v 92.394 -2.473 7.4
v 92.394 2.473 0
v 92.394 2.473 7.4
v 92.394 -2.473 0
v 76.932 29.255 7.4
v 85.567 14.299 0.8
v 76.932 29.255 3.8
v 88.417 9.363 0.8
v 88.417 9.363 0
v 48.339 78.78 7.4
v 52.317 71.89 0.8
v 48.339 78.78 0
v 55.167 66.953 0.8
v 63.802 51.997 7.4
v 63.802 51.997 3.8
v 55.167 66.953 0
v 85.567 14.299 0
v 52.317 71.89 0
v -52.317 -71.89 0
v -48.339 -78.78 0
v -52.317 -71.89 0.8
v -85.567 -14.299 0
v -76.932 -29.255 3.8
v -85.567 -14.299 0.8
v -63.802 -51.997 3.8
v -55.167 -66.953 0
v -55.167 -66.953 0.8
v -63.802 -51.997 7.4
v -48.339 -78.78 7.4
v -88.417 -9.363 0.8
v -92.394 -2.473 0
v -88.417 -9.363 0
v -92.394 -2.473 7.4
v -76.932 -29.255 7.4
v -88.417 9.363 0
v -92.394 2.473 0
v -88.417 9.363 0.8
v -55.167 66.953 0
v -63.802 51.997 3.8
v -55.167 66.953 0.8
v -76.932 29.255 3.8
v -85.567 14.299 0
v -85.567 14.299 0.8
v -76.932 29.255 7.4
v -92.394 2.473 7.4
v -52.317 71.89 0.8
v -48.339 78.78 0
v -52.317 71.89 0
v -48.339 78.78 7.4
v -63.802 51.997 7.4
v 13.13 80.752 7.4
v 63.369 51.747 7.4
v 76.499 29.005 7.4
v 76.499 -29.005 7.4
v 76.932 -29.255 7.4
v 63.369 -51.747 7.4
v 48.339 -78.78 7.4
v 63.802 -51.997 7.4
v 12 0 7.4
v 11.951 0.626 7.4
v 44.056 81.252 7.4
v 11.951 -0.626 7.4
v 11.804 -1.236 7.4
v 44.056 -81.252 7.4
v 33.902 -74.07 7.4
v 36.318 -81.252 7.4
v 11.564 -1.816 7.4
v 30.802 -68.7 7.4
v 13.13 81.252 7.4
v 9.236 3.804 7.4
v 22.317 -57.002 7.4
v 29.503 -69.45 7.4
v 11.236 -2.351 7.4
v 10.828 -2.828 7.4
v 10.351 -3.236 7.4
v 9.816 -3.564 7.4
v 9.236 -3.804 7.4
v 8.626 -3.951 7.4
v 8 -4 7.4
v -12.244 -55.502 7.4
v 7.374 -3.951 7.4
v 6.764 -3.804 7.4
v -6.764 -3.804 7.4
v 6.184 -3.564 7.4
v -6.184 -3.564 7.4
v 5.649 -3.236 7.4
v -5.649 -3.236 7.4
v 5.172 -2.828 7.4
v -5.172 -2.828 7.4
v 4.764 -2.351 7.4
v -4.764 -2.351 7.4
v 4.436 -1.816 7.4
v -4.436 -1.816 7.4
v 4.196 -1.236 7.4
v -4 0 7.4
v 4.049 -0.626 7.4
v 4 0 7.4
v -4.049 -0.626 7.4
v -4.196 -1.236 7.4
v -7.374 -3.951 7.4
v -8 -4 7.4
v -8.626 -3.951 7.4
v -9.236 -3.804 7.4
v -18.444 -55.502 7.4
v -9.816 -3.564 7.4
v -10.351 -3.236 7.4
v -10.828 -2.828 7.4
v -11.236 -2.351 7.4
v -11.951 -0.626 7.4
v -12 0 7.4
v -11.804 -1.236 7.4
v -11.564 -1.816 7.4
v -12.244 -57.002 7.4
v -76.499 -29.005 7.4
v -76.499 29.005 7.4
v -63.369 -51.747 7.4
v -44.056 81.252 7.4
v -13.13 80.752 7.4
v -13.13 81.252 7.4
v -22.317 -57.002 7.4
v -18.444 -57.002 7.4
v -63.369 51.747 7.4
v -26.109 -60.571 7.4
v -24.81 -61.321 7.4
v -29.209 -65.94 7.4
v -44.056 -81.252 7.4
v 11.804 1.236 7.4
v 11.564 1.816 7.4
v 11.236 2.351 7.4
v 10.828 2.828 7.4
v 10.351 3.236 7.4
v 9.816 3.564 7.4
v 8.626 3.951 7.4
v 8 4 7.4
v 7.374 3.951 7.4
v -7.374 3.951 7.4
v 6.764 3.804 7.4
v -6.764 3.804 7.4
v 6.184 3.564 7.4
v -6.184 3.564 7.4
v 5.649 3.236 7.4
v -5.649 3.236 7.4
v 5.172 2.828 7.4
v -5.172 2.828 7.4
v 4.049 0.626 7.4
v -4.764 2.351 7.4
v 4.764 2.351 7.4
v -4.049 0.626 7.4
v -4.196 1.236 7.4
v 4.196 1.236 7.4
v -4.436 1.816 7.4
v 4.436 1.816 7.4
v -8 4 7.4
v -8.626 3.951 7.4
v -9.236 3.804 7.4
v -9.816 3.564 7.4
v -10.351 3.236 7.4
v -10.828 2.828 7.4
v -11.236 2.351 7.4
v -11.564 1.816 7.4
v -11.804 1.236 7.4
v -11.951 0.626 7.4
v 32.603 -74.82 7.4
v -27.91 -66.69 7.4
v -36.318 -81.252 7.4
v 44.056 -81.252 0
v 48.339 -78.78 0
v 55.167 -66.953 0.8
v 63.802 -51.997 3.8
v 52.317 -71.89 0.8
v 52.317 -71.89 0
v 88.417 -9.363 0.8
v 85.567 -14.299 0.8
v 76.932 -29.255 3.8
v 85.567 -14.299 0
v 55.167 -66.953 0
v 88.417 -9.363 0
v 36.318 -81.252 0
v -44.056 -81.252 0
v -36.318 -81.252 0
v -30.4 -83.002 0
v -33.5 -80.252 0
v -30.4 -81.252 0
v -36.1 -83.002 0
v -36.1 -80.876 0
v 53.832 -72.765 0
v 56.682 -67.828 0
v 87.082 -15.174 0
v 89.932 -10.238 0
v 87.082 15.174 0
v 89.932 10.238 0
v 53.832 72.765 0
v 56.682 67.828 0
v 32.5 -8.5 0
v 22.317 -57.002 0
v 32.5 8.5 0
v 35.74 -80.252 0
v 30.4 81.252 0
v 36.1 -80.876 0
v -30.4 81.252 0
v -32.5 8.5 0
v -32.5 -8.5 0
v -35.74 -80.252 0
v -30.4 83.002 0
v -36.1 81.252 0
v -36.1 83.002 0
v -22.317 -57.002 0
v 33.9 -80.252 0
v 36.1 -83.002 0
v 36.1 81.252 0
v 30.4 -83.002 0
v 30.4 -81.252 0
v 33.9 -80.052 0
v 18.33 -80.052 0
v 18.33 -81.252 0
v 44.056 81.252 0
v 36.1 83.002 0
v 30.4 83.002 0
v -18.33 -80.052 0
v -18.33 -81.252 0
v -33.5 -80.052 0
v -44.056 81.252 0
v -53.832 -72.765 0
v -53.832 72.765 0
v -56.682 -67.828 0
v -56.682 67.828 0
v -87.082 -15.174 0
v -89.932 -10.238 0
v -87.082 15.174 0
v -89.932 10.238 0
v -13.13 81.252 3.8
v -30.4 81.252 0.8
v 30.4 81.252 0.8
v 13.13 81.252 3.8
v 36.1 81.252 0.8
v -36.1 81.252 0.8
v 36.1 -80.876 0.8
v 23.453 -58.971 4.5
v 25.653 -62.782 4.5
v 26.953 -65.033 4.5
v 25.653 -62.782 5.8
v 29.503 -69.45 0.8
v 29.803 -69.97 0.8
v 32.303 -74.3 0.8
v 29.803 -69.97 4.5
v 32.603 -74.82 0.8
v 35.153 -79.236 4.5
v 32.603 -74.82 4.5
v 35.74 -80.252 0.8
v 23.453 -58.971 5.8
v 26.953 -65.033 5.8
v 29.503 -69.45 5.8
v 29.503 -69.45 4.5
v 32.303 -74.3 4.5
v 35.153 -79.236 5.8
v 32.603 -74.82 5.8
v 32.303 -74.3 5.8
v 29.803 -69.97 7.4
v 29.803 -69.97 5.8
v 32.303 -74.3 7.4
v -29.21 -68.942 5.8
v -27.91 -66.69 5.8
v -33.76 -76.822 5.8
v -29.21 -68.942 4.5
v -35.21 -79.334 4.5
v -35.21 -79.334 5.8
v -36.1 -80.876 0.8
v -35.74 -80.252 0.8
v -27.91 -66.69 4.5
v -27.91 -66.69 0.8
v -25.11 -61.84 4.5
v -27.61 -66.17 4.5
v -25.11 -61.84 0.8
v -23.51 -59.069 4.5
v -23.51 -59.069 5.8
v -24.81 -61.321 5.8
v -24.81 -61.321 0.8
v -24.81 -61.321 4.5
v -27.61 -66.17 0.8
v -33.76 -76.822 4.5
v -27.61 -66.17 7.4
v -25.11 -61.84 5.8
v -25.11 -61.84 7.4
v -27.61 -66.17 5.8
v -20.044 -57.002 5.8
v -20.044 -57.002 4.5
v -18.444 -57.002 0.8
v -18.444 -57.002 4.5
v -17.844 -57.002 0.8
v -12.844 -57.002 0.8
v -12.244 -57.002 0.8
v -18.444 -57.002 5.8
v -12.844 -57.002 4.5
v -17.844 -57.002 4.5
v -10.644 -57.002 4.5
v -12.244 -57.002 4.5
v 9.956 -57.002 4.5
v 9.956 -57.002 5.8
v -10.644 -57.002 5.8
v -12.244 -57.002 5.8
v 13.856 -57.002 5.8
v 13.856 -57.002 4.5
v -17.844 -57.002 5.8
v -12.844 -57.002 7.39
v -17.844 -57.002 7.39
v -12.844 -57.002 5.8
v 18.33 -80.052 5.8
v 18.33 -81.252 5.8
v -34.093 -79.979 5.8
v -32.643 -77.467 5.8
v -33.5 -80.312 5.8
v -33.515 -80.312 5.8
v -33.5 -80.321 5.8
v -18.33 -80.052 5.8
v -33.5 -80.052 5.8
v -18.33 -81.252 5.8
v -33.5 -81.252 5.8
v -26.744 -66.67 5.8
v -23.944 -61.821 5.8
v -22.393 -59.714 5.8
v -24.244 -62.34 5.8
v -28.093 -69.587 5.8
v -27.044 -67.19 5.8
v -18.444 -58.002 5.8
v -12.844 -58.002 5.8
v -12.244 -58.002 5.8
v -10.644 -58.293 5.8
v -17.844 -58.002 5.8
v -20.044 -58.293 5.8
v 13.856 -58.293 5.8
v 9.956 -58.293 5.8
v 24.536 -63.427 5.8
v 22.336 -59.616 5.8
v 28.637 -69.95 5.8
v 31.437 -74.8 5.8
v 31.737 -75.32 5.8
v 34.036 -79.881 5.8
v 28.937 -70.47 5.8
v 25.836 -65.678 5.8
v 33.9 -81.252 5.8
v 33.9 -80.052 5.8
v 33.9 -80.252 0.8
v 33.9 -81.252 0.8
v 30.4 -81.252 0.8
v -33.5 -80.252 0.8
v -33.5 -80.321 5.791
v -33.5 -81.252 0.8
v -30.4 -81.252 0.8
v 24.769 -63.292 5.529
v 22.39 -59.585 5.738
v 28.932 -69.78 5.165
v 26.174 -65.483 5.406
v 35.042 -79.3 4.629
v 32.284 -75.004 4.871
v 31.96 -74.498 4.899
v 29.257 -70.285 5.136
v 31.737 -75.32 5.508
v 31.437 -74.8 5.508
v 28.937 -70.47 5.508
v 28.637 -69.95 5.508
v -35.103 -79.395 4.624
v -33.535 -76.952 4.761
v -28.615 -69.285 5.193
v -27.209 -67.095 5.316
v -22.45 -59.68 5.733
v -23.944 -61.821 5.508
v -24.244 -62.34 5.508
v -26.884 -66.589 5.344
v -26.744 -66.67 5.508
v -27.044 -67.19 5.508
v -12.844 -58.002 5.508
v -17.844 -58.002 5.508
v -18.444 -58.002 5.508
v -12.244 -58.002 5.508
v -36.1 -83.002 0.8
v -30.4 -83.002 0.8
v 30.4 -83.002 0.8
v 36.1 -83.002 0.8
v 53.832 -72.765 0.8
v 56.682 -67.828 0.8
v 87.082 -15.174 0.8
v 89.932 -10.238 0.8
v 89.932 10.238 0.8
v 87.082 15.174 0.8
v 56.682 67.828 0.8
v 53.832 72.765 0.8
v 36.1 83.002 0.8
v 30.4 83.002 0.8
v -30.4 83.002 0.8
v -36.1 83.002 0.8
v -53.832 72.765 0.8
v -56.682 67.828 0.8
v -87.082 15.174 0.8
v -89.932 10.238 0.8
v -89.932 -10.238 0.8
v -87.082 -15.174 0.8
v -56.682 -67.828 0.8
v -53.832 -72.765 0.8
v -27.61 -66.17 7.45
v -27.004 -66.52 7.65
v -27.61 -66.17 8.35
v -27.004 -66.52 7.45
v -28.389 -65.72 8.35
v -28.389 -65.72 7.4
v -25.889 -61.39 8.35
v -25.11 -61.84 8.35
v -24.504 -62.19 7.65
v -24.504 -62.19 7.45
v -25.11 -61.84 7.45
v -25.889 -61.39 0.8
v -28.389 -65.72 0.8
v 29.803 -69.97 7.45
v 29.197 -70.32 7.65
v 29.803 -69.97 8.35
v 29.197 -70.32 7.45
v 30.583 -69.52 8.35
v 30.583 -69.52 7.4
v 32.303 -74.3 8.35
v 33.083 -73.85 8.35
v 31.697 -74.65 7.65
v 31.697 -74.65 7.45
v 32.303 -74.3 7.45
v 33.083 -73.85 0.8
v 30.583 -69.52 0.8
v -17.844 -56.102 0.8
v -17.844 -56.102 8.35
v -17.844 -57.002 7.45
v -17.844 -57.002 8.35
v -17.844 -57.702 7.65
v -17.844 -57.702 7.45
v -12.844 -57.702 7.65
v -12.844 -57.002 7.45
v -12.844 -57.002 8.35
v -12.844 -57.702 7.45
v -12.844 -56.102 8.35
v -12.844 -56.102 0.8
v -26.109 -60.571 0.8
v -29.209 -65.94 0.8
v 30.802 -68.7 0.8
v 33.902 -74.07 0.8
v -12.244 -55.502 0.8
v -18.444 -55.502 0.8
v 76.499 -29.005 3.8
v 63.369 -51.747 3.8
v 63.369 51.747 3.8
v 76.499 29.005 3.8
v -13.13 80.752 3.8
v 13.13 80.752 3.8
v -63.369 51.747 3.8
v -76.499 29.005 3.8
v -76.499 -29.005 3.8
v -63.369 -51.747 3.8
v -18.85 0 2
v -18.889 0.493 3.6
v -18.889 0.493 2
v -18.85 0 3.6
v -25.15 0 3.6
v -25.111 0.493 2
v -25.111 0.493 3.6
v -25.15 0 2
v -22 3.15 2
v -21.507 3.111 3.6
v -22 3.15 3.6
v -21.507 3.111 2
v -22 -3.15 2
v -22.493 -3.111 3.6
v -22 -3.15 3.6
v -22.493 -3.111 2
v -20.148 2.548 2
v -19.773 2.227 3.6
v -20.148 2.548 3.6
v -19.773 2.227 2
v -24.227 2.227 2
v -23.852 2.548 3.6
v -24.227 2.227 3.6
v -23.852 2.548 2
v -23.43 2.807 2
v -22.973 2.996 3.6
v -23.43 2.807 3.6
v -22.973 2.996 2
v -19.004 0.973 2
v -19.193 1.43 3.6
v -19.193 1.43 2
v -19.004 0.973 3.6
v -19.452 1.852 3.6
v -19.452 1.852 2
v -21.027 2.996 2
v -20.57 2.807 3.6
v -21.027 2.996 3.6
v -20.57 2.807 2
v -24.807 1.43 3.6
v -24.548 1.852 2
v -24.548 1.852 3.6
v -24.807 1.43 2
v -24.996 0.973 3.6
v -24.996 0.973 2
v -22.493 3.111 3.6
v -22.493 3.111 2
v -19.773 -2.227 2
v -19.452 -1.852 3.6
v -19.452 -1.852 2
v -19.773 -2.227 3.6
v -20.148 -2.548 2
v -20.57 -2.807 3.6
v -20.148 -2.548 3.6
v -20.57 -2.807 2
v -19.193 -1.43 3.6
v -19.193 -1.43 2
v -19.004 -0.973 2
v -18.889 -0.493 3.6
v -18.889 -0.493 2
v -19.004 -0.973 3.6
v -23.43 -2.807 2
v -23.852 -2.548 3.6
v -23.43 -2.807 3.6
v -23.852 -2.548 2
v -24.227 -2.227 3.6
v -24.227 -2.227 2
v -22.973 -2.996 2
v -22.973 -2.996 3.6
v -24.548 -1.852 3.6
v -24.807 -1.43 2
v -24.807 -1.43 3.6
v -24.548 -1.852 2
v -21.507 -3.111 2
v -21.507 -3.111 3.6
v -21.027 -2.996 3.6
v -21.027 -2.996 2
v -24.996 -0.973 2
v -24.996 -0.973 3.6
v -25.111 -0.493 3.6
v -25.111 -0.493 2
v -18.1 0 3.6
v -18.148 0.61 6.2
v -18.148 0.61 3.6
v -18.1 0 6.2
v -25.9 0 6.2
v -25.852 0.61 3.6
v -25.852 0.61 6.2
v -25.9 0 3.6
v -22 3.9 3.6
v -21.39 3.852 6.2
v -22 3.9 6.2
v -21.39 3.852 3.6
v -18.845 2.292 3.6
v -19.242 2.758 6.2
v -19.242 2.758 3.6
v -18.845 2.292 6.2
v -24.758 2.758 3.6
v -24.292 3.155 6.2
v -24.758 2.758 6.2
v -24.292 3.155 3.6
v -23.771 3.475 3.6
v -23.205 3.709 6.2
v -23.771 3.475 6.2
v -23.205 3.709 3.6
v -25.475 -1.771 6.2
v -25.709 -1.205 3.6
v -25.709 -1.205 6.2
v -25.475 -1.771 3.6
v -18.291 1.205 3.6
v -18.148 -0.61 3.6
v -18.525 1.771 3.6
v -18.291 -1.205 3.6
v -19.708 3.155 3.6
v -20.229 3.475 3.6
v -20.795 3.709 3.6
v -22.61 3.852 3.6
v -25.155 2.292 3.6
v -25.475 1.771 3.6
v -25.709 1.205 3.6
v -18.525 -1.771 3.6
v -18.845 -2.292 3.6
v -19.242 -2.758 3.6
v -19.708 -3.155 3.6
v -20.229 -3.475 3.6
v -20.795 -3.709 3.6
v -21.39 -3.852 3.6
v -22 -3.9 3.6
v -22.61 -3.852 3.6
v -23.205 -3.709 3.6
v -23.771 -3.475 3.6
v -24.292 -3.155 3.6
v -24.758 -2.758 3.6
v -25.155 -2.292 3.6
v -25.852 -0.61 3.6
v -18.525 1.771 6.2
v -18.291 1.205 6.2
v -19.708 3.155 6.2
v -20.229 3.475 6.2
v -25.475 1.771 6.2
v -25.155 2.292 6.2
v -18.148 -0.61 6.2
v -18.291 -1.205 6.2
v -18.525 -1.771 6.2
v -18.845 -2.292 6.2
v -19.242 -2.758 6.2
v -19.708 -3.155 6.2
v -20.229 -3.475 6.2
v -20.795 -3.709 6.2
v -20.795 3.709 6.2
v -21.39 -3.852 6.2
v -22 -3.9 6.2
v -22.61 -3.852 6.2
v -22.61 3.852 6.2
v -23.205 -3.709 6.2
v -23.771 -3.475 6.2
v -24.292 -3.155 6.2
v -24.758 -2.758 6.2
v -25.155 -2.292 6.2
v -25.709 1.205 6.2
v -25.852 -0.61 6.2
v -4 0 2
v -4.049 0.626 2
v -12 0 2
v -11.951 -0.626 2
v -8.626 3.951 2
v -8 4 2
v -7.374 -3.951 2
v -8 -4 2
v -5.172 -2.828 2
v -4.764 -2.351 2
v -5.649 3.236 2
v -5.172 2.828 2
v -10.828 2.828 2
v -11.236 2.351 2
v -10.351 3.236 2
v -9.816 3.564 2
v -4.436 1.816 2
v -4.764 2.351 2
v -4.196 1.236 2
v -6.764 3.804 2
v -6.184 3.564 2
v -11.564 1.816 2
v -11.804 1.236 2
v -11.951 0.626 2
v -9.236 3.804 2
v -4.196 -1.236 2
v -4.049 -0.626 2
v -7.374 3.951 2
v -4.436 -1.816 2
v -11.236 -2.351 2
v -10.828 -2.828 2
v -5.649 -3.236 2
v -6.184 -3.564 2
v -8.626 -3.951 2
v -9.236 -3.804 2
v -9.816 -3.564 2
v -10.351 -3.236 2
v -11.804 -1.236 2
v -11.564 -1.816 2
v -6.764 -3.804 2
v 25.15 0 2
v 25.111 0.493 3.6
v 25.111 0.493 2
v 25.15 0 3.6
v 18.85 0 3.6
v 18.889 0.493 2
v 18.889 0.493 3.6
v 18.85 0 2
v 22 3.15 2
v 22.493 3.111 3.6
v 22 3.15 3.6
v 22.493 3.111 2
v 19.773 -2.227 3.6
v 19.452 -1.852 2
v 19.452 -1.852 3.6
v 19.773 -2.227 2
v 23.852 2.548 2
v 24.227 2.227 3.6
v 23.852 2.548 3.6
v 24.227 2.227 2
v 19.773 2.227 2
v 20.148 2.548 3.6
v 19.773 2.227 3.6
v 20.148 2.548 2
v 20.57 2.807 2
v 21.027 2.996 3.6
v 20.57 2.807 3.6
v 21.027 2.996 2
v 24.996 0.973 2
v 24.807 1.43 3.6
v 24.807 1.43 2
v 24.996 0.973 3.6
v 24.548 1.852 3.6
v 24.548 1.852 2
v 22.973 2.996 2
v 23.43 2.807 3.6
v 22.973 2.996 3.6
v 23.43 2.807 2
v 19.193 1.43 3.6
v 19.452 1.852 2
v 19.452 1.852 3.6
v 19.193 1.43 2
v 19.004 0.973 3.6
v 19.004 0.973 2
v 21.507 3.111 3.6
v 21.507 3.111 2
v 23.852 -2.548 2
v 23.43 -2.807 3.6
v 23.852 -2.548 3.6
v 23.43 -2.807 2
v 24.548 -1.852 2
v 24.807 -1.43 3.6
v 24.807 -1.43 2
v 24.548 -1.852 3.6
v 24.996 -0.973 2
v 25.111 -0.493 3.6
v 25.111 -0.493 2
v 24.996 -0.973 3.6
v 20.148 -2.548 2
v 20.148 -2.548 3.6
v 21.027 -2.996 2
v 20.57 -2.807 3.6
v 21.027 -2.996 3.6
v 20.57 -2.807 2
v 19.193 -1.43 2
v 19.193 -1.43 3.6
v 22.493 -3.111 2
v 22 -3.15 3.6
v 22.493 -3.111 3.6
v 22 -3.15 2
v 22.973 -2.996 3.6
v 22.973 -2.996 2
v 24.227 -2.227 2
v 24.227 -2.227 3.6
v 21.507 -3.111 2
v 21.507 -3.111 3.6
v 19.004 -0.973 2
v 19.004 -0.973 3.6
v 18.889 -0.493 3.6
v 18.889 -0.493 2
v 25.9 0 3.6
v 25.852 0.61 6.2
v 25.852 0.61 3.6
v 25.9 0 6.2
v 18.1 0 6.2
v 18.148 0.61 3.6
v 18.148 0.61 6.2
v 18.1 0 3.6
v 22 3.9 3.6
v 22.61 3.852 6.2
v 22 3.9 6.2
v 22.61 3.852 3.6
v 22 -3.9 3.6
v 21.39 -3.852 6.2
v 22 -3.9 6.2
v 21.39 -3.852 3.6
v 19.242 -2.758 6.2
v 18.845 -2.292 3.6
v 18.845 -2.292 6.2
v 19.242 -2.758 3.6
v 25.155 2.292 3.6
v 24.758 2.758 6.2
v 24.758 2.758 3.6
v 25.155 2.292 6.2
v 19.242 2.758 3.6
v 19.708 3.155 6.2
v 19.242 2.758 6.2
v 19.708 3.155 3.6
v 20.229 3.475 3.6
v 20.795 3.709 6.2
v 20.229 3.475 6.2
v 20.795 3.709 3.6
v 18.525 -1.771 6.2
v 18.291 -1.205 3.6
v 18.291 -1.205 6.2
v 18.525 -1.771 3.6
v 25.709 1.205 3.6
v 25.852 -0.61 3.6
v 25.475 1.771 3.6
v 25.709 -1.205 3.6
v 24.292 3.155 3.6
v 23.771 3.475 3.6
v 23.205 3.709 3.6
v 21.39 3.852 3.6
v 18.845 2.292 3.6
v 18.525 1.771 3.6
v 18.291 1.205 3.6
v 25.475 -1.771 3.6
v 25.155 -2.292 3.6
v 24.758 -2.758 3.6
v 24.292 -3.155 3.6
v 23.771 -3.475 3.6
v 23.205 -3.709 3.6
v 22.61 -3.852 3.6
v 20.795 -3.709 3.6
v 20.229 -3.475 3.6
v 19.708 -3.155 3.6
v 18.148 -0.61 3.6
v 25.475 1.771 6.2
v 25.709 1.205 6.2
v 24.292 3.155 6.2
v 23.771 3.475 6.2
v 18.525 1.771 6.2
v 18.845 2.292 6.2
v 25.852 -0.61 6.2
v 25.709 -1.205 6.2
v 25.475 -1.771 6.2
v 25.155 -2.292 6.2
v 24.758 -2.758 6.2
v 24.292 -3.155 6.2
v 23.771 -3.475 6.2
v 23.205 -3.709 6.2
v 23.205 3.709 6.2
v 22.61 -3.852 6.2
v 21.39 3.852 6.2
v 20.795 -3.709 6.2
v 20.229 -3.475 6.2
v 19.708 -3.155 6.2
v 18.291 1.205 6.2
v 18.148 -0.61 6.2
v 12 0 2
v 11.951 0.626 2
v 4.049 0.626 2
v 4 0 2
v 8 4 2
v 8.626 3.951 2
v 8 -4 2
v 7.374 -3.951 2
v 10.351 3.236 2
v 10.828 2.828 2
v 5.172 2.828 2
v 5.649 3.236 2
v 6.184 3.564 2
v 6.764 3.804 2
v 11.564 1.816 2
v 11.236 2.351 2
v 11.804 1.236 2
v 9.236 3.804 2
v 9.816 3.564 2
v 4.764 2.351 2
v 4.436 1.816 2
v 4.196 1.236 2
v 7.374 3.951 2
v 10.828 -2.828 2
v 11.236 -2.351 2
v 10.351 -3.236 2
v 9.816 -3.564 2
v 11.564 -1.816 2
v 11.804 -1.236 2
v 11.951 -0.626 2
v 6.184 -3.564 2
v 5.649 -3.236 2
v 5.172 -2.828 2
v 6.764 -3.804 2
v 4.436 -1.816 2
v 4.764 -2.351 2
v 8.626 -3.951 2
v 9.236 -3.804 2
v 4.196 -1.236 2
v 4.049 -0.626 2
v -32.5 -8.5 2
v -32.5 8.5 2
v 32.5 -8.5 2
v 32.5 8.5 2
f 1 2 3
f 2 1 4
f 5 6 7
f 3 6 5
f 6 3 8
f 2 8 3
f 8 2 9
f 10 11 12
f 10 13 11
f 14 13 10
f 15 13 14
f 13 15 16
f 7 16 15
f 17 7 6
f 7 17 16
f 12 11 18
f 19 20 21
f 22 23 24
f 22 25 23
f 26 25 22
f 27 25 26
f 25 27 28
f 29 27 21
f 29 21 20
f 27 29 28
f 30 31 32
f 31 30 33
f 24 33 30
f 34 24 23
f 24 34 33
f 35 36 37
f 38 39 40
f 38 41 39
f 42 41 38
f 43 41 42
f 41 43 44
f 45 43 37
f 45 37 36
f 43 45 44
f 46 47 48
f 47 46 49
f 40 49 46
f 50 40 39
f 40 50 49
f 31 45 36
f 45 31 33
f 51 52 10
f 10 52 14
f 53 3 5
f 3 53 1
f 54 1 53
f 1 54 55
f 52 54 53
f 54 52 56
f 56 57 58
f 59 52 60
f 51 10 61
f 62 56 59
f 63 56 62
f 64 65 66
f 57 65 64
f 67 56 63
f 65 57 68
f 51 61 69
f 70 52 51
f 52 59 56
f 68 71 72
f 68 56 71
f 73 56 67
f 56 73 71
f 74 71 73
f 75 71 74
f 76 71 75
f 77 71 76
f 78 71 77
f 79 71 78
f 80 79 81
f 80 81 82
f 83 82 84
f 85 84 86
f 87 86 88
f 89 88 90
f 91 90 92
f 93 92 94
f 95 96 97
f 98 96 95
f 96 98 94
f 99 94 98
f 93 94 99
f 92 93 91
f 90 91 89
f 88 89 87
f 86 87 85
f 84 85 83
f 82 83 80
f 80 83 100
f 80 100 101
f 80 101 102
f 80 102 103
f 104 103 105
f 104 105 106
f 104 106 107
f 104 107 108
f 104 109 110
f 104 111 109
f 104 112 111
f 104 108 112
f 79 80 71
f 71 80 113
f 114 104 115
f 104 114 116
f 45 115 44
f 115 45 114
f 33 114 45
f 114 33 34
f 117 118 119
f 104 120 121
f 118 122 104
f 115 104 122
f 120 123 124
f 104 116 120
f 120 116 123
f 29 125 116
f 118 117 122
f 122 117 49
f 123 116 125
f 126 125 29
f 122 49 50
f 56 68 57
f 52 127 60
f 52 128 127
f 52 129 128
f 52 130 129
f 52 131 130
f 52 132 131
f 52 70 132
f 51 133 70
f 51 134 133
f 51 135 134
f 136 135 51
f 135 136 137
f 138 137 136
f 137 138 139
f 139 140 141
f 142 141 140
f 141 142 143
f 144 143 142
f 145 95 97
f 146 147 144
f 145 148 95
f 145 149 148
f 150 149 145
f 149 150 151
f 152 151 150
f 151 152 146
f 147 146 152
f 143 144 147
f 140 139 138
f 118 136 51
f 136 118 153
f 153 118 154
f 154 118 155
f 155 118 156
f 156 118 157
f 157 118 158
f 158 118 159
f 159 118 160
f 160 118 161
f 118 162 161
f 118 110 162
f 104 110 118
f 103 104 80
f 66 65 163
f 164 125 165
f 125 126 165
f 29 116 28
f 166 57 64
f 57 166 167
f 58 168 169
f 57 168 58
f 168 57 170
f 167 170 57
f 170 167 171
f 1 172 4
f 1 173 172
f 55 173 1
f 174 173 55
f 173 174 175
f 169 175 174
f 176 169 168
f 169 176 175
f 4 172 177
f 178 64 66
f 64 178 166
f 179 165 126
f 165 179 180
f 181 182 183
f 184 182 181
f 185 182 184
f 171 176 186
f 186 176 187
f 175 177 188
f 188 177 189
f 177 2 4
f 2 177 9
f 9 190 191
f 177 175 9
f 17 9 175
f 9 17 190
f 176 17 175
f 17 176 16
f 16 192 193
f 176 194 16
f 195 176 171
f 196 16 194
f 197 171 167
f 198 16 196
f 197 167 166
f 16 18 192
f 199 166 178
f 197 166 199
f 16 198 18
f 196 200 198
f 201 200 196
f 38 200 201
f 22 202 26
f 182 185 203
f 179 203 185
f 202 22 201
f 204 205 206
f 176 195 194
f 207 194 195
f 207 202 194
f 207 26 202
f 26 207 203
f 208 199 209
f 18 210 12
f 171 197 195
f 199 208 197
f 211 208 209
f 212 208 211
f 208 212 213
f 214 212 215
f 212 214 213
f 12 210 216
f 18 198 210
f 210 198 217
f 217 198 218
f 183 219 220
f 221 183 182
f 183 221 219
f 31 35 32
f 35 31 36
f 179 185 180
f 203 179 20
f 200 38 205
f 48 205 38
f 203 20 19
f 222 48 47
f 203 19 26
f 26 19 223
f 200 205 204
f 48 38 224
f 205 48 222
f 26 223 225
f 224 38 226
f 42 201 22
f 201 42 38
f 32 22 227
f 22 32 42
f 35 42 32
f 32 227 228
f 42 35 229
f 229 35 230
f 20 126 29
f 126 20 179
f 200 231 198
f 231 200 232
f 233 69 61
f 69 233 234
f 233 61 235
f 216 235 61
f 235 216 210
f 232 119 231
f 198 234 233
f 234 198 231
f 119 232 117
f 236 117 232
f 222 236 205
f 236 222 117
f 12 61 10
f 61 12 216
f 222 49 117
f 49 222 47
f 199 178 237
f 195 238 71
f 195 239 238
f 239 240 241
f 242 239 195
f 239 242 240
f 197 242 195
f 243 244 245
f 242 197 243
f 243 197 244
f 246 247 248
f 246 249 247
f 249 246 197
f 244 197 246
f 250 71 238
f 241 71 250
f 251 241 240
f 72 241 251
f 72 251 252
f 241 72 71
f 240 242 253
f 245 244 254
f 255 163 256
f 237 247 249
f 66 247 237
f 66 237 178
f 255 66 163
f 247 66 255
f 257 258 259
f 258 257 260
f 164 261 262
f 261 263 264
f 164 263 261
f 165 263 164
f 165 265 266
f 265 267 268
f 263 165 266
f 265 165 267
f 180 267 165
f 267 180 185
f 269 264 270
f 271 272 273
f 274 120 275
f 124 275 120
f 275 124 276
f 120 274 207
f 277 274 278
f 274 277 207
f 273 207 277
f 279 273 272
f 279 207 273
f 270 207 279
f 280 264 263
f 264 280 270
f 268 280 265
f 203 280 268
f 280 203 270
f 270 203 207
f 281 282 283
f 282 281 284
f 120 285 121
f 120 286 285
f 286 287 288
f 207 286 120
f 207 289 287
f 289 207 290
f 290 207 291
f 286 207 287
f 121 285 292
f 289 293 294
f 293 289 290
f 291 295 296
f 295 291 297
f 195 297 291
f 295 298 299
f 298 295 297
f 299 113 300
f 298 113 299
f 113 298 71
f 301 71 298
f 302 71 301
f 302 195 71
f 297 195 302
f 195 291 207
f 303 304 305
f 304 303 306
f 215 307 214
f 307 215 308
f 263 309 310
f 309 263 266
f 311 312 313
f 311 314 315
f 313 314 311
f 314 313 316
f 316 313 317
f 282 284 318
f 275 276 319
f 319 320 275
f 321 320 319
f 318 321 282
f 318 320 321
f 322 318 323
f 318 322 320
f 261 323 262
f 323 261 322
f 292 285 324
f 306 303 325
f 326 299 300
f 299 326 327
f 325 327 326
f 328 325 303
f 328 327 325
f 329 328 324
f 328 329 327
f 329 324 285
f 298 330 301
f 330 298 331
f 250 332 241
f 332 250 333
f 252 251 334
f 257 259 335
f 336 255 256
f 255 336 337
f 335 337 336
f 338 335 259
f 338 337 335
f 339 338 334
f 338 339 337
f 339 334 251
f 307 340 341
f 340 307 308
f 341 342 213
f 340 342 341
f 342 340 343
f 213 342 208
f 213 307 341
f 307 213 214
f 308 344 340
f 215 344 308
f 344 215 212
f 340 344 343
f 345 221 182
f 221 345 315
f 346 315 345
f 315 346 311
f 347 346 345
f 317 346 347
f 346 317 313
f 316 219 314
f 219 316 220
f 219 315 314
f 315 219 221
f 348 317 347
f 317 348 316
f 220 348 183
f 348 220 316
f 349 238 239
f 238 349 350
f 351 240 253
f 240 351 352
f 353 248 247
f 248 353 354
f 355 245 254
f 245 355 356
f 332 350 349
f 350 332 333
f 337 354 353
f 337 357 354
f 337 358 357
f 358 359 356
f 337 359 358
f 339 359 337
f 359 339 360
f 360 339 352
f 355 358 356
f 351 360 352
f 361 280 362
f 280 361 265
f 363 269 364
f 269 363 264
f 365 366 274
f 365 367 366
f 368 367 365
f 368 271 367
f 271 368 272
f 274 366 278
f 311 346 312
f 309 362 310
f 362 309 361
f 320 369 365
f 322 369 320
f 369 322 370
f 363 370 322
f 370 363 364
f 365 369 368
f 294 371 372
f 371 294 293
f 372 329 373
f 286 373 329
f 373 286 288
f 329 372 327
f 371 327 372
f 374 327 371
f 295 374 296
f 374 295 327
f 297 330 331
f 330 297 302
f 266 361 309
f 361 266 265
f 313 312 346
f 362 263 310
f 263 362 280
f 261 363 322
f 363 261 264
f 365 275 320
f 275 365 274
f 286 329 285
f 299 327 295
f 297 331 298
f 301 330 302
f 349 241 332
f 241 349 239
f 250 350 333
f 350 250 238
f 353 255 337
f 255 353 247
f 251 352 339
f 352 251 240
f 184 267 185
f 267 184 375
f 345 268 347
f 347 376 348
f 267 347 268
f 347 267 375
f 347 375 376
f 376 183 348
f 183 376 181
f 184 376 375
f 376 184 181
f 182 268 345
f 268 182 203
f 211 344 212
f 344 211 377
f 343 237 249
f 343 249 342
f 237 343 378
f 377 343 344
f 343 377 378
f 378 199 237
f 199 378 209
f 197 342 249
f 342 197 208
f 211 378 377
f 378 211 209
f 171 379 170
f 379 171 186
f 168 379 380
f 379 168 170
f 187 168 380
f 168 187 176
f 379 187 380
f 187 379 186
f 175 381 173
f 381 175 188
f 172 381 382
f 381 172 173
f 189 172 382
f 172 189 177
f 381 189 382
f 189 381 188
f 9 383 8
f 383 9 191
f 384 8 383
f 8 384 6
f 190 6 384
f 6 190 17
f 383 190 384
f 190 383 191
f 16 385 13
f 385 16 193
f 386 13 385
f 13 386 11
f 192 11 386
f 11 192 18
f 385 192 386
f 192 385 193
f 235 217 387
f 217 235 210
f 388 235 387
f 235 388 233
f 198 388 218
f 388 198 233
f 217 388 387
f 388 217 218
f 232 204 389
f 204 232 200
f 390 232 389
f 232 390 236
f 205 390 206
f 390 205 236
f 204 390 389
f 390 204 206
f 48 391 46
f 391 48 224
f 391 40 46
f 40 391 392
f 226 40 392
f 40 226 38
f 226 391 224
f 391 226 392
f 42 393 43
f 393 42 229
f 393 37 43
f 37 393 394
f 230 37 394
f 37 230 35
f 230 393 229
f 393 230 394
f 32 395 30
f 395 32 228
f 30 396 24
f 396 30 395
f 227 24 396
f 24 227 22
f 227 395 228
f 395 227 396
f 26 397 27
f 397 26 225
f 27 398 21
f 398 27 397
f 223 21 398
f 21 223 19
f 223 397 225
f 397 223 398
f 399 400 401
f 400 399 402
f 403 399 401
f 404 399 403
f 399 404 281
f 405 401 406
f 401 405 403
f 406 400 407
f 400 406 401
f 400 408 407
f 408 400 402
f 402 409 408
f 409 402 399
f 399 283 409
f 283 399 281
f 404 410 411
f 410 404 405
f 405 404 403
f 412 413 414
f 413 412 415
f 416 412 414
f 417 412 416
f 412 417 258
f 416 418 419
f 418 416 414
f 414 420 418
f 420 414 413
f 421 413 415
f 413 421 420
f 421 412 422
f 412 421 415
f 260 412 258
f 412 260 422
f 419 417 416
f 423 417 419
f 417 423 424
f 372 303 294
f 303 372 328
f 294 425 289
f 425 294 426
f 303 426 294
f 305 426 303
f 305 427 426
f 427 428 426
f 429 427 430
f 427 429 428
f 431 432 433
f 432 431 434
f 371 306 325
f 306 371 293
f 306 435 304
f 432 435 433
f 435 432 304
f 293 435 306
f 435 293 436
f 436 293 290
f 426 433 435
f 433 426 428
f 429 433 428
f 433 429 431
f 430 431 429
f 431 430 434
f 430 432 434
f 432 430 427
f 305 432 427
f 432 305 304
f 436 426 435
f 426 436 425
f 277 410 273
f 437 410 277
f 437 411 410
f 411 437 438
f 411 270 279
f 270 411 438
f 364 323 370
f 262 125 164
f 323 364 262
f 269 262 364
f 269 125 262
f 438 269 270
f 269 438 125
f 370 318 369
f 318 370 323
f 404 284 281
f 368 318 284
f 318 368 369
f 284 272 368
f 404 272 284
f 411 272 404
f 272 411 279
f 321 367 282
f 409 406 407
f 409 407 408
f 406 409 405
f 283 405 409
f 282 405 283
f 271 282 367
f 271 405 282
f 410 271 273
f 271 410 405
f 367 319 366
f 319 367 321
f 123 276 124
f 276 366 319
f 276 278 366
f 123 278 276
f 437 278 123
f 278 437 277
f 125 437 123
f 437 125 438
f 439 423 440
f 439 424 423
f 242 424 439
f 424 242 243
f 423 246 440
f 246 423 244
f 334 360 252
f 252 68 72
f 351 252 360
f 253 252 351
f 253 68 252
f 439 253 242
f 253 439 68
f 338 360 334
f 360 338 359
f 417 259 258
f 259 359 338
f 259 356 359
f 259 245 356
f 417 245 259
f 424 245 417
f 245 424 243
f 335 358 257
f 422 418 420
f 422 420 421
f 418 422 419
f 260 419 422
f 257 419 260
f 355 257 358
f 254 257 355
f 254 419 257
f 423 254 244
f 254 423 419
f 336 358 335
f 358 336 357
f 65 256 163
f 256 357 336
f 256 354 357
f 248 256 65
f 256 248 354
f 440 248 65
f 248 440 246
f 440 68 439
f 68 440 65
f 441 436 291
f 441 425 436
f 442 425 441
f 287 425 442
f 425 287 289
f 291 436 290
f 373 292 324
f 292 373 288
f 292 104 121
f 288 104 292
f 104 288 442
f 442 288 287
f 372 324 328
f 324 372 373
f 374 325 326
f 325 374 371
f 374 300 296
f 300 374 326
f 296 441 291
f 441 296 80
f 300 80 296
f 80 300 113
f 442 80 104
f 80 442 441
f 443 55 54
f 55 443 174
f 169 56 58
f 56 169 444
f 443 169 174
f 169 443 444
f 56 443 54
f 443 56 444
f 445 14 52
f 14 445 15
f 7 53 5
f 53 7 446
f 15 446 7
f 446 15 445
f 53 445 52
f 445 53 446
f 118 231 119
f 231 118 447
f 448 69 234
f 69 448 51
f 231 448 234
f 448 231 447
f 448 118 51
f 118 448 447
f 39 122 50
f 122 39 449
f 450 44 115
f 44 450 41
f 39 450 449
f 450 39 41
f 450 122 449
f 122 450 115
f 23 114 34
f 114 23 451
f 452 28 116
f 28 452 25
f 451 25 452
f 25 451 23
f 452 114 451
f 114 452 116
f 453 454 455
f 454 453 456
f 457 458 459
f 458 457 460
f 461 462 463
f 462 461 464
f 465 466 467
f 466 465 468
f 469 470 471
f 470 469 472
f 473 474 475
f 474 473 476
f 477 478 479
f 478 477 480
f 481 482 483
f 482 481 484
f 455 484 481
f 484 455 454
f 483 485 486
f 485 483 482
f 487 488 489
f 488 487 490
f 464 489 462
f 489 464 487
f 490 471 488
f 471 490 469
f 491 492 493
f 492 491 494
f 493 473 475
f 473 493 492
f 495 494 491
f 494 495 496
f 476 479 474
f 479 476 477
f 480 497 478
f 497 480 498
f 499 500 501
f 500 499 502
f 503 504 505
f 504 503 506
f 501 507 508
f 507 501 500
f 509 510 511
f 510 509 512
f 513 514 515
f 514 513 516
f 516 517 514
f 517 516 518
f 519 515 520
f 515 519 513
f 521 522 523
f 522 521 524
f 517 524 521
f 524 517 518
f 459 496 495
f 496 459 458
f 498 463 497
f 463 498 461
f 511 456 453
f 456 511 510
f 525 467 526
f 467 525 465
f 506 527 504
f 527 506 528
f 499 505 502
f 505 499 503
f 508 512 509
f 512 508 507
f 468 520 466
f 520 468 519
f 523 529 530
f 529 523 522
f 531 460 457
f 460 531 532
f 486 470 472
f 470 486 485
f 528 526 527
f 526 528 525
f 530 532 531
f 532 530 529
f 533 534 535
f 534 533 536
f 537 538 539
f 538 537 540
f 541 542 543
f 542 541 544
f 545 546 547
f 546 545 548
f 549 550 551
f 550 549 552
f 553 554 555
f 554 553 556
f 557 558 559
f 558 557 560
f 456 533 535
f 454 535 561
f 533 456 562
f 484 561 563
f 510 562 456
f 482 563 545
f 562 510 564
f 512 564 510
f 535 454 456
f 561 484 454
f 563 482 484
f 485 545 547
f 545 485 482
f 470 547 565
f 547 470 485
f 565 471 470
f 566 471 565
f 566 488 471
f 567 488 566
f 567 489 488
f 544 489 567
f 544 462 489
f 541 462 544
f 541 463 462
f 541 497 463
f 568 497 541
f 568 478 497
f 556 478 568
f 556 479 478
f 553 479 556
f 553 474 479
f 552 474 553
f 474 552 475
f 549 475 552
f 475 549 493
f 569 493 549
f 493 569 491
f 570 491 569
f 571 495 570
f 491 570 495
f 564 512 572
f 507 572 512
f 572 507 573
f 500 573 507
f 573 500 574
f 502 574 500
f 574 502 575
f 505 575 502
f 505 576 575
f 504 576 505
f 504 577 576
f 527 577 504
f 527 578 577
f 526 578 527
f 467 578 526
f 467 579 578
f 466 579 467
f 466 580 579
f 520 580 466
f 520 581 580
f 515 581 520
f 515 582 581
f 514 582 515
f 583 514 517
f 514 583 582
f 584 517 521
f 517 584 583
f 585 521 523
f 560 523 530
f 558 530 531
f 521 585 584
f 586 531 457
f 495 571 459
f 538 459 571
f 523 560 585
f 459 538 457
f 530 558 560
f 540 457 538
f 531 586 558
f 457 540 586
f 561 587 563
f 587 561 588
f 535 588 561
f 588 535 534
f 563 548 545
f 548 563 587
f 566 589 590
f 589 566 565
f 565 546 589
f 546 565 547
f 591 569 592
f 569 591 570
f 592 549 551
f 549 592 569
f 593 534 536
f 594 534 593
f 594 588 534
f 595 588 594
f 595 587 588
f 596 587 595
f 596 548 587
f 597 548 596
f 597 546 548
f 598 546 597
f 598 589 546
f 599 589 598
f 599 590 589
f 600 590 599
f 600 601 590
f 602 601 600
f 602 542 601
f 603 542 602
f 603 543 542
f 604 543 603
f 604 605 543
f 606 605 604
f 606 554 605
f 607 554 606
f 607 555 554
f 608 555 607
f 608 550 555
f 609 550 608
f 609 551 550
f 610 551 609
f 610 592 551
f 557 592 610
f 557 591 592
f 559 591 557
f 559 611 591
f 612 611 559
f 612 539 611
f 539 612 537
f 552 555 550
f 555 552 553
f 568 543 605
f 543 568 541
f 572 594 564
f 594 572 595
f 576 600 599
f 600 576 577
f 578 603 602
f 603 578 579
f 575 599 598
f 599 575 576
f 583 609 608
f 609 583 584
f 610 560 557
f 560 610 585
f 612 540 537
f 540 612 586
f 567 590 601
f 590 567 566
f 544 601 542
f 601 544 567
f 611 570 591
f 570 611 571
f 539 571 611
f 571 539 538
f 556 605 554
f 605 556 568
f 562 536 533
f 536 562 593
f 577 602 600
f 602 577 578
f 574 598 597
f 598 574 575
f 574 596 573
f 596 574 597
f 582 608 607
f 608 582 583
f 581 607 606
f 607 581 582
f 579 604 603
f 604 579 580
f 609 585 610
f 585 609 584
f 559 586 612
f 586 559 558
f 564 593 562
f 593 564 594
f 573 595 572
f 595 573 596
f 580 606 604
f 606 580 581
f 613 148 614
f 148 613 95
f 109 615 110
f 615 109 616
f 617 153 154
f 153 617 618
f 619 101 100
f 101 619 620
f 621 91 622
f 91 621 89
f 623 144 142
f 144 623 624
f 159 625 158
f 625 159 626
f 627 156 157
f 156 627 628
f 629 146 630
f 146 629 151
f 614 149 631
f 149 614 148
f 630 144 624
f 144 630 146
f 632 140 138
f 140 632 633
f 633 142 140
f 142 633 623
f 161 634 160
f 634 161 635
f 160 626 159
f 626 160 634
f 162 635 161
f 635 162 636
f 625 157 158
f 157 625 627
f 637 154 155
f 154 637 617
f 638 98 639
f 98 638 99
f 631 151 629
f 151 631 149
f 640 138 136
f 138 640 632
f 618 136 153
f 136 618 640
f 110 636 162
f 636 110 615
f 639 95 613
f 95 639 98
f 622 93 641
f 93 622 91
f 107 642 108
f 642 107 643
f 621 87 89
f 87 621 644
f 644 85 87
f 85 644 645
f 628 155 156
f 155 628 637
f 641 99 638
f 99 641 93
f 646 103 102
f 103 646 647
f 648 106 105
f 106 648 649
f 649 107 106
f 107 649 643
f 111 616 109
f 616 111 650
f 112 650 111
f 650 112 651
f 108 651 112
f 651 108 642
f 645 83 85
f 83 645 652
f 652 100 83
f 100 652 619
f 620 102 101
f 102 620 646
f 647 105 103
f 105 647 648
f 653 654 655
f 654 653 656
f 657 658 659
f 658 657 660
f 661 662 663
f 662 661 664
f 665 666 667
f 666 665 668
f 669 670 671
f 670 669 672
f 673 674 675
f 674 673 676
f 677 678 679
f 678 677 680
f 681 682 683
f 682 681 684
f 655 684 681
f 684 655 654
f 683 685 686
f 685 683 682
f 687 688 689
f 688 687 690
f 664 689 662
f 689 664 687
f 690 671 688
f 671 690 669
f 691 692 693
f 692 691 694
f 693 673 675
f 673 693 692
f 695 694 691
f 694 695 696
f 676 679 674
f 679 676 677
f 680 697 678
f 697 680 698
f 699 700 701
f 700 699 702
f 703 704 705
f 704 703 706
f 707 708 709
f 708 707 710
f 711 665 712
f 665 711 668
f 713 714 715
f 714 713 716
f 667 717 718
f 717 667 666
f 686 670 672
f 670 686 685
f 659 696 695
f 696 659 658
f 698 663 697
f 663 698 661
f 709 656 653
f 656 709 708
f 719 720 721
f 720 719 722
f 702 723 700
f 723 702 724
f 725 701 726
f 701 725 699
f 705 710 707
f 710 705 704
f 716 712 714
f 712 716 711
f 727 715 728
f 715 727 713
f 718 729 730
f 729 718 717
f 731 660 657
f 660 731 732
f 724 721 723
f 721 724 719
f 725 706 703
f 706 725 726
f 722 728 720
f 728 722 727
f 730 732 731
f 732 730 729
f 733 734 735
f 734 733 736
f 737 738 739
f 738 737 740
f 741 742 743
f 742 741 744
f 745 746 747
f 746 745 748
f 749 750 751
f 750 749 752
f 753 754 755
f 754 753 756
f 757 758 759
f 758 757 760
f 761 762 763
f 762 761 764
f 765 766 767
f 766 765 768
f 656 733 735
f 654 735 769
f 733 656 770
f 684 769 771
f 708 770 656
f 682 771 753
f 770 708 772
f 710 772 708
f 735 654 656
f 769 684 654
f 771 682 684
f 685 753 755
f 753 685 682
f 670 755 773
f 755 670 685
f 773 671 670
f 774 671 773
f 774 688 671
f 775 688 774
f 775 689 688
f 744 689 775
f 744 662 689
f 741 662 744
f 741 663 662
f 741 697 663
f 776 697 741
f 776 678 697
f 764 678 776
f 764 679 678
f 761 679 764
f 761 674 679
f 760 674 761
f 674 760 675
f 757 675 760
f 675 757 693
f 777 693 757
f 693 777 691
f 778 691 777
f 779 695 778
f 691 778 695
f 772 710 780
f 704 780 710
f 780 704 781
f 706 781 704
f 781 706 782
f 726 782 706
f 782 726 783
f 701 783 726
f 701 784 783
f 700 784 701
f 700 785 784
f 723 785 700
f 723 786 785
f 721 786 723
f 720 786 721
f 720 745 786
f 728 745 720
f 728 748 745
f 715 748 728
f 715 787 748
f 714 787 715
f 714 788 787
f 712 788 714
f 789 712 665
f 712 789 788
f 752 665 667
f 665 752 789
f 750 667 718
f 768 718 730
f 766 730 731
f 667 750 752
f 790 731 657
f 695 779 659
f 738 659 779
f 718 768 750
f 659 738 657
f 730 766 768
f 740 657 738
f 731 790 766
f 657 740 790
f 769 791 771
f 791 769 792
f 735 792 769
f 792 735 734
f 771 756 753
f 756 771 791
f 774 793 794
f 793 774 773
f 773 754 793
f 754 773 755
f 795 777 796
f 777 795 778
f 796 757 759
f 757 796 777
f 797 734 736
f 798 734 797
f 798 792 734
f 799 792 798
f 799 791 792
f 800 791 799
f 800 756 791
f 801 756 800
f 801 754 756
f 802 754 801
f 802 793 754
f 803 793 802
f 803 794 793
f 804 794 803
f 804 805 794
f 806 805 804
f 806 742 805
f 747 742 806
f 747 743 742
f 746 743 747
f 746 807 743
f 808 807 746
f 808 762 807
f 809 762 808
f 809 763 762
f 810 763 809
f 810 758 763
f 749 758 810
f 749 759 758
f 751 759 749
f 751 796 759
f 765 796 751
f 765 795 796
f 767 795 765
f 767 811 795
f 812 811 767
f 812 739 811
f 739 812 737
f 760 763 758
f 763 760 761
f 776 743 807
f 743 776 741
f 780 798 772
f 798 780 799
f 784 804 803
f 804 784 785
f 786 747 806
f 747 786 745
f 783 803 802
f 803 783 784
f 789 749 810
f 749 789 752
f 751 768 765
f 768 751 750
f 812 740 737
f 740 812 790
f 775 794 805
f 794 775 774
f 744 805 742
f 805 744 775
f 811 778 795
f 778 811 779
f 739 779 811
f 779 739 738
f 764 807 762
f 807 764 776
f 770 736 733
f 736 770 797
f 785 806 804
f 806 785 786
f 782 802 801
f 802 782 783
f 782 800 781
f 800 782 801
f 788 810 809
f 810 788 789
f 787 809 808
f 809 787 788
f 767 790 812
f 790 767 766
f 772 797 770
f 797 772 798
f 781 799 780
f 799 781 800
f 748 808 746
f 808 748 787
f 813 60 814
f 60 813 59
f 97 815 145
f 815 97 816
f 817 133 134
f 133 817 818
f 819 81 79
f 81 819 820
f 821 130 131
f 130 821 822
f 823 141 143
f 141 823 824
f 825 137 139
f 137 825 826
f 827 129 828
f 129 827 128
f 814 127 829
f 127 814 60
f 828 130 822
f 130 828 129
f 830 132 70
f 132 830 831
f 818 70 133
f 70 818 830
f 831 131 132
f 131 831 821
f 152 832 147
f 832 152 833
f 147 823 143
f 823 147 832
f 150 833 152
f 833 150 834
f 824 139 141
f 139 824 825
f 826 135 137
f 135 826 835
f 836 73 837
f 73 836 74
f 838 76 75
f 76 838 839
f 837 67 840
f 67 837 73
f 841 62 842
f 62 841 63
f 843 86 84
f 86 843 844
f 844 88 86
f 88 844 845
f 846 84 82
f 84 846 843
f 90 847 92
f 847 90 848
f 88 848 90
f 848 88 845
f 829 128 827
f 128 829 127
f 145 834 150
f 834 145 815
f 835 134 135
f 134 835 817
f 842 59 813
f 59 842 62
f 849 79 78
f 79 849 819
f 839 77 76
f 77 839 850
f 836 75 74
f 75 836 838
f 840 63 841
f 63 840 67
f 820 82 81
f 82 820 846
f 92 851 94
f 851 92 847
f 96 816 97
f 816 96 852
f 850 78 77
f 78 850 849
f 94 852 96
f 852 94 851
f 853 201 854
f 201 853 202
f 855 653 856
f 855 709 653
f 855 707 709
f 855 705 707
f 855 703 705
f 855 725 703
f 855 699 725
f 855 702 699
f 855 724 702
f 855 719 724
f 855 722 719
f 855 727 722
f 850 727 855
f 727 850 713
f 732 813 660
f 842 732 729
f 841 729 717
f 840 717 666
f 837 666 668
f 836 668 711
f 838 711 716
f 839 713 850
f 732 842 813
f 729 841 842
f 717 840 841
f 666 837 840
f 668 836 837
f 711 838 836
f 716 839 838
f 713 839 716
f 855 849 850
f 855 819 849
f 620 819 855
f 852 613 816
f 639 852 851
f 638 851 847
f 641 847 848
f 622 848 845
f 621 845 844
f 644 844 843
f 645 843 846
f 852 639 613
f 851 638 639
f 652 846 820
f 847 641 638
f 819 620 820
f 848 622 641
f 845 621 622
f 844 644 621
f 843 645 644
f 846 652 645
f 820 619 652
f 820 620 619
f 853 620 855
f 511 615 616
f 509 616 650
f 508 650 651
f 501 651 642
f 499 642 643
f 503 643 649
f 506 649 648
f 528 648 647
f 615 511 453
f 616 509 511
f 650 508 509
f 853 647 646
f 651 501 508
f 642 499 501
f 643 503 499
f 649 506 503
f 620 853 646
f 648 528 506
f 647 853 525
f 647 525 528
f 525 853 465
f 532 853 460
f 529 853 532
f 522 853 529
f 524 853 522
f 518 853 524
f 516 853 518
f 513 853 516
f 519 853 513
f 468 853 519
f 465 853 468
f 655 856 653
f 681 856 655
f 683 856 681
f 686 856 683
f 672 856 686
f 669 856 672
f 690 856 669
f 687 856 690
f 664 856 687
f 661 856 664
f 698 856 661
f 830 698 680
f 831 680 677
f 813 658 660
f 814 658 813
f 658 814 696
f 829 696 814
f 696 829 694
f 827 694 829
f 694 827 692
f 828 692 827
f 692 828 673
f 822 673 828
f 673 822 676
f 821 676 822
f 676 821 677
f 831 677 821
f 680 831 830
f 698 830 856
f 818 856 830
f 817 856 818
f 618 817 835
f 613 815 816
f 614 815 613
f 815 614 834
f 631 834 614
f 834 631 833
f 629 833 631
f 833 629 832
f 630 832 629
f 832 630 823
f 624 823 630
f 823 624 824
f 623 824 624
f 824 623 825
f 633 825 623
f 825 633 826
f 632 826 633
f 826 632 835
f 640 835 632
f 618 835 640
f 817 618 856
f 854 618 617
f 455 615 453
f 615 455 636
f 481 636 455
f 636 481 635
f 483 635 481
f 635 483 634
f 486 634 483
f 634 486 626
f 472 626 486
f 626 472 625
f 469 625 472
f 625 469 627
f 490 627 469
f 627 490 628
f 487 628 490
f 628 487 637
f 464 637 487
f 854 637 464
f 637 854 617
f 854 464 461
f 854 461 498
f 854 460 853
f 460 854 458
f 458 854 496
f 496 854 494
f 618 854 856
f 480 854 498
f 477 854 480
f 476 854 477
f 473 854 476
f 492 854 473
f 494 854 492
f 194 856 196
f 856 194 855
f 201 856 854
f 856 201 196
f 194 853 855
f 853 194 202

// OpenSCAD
// file: common.scad
// =====================================================================
//  common.scad -- helpers and mock PCBs shared by the WP 1.6 part files.
//  Part files `include <common.scad>` (this pulls in params.scad too).
// =====================================================================
include <params.scad>

// ---------------- polygon helpers ----------------
function circ(a) = a / cos(180 / n_sides);                 // apothem -> circumradius
module ngon(a) rotate(pr_rot) circle(r = circ(a), $fn = n_sides);

// Polygon ring between apothems a0 and a1, from z0 to z1.
module ring_band(a0, a1, z0, z1)
    translate([0, 0, z0]) linear_extrude(z1 - z0) difference() { ngon(a1); if (a0 > 0) ngon(a0); }

module on_sides(list) for (k = list) rotate([0, 0, k * 360 / n_sides]) children();
module all_sides() on_sides([0 : n_sides - 1]) children();

// +X points at corner k (between side k and side k+1).
module at_corners() for (k = [0 : n_sides - 1]) rotate([0, 0, -90 + 180 / n_sides + k * 360 / n_sides]) children();

// Box in side-local coordinates: X along the side, r = apothem (r grows toward -Y), z.
module sbox(x0, x1, r0, r1, z0, z1) translate([x0, -r1, z0]) cube([x1 - x0, r1 - r0, z1 - z0]);

// Prism with a cross-section given as [r, z] points, running X = x0..x1 (side-local).
module rz_prism(x0, x1, pts)
    translate([x0, 0, 0]) rotate([90, 0, 90]) linear_extrude(x1 - x0) polygon([for (p = pts) [-p[0], p[1]]]);

// Controller trapezoid (side-0 local, 2D). y_ext extends the base past the board face.
// y = distance from the code-0 inward face toward the panel centre.
function ctrl_hw(y) = ctrl_base / 2 - (y - ctrl_gap) * tan(90 - ctrl_side);
module ctrl_2d(y_ext = 0) {
    y0 = ctrl_gap - y_ext;
    y1 = ctrl_gap + ctrl_depth;
    polygon([[-ctrl_hw(y0), -Ai + y0], [ctrl_hw(y0), -Ai + y0],
             [ctrl_hw(y1), -Ai + y1], [-ctrl_hw(y1), -Ai + y1]]);
}

// ---------------- controller edges in the CONTROLLER frame (LAYOUT-NOTES §1) ----------------
// Frame: x to the right and y into the board, seen from F.Cu (the wall side); base edge at y = ctrl_gap.
// Global: X = -x, Y = -Ai + y. Edges run in the notes' order: 0 base (from the left corner),
// 1 right side (from the base corner), 2 top (from the right corner), 3 left side (from the top corner).
ctrl_top_hw = ctrl_base / 2 - ctrl_depth * tan(90 - ctrl_side);
ctrl_c = [[-ctrl_base / 2, ctrl_gap], [ctrl_base / 2, ctrl_gap],
          [ctrl_top_hw, ctrl_gap + ctrl_depth], [-ctrl_top_hw, ctrl_gap + ctrl_depth]];
function ctrl_dir(i) = let(a = ctrl_c[i], b = ctrl_c[(i + 1) % 4], d = b - a) d / norm(d);
function ctrl_nrm(i) = let(d = ctrl_dir(i)) [d[1], -d[0]];          // outward normal
function ctrl_pt(i, s) = ctrl_c[i] + s * ctrl_dir(i);
function to_glob(p) = [-p[0], -Ai + p[1]];
function nrm_glob(n) = [-n[0], n[1]];

// 2D strip along edge i, s0..s1, from `outw` outside the edge to `inw` inside it (global coordinates).
module ctrl_edge_strip(i, s0, s1, outw, inw) {
    n = ctrl_nrm(i);
    polygon([to_glob(ctrl_pt(i, s0) + outw * n), to_glob(ctrl_pt(i, s1) + outw * n),
             to_glob(ctrl_pt(i, s1) - inw * n), to_glob(ctrl_pt(i, s0) - inw * n)]);
}

// Place children at s along edge i, local +Y = outward normal, origin on the edge offset by `off`.
module at_ctrl_edge(i, s, off = 0) {
    n = ctrl_nrm(i);
    ng = nrm_glob(n);
    translate(to_glob(ctrl_pt(i, s) + off * n)) rotate(atan2(ng[1], ng[0]) - 90) children();
}

// ---------------- mock PCBs (assembly only, never printed) ----------------
// One edge board in side-local position. Board x = -X (see params.scad header).
module mock_edge_board(code0 = false) {
    color("darkgreen") sbox(-HL, HL, Ai, Ae, 0, board_H);
    // exterior contact pads (B.Cu, gold)
    color("gold") for (x = pad_x) sbox(-x - 1.5, -x + 1.5, Ae, Ae + 0.05, 0.6, strip_top);
    // exterior corner power pads
    color("gold") for (s = [-1, 1]) for (zz = [[0.5, 3.5], [6.0, 8.5], [11.0, 12.6]])
        sbox(s > 0 ? HL - corner_pad_ex_w : -HL, s > 0 ? HL : -HL + corner_pad_ex_w, Ae, Ae + 0.05, zz[0], zz[1]);
    // LEDs on the inward face
    for (x = led_x) color("white")
        sbox(-x - led_size / 2, -x + led_size / 2, Ai - led_proud, Ai, led_z - led_size / 2, led_z + led_size / 2);
    // J4 joint pads (inward face, every board)
    color(code0 ? "gold" : "goldenrod") for (i = [0:9])
        sbox(-(-11.43 + 2.54 * i) - 0.65, -(-11.43 + 2.54 * i) + 0.65, Ai - 0.05, Ai, j4_z[0], j4_z[1]);
    // inward corner signal pads
    color("goldenrod") for (s = [-1, 1])
        sbox(s > 0 ? HL - corner_pad_in_w : -HL, s > 0 ? HL : -HL + corner_pad_in_w, Ai - 0.05, Ai, 0.85, 12.15);
}

module mock_boards() for (k = [0 : n_sides - 1]) rotate([0, 0, k * 360 / n_sides]) mock_edge_board(k == 0);

// Controller board at its rev A position (parts on the wall side). Mirror: controller x (seen from F.Cu) = -X.
module mock_controller() {
    color("white") translate([0, 0, z_ctrl_bot]) linear_extrude(ctrl_t)
        offset(r = ctrl_fillet) offset(delta = -ctrl_fillet) ctrl_2d();
    // L1 inductor, the tallest part (4.5 mm), hanging toward the wall
    color("dimgray") translate([-ctrl_L1[0] - ctrl_L1[2] / 2, -Ai + ctrl_gap + ctrl_L1[1] - ctrl_L1[3] / 2, z_ctrl_bot - ctrl_L1[4]])
        cube([ctrl_L1[2], ctrl_L1[3], ctrl_L1[4]]);
    // joint fillet zone
    color("silver") translate([-12.33, -Ai, z_ctrl_bot - 1.5]) cube([24.66, 2.0, 1.5]);
}

// Seam bridge in side-local position: PCB centred on the seam line r = As, springs on both faces.
module mock_bridge() {
    color("darkolivegreen") sbox(-bridge_len / 2, bridge_len / 2, As - bridge_t / 2, As + bridge_t / 2, bridge_z_bot, bridge_z_top);
    sh = spring_h_at_d;
    color("silver") for (x = pad_x) for (s = [-1, 1])
        sbox(x - spring_w / 2, x + spring_w / 2,
             s < 0 ? As - bridge_t / 2 - sh : As + bridge_t / 2,
             s < 0 ? As - bridge_t / 2 : As + bridge_t / 2 + sh,
             spring_contact_z - 0.9, spring_contact_z + 2.6);
}

// Diffuser film (cut template shape), 2D.
module film_2d() intersection() {
    ngon(film_a);
    // half-planes x' <= film_cr at every corner (corners cut clear of the registration pins)
    intersection_for (k = [0 : n_sides - 1])
        rotate(-90 + 180 / n_sides + k * 360 / n_sides) translate([film_cr - 400, -200]) square([400, 400]);
}
// main file
// =====================================================================
//  back_plate.scad -- WP 1.6 back plate, white PETG (it is the white back reflector).
//
//  Solid polygon plate inside the ring of edge boards, z_pb .. z_floor (-0.8 .. 6.6):
//   - top face = chamber floor at z 6.6 (SPEC §10 item 17), flush with the controller's white top.
//   - rim: its edge (0.25 mm off the boards' inward faces) takes the springs' inward push
//     low down, right behind the contact strip (SPEC §3.3 "Forces").
//   - corners cut back so the inward corner pads and beads stay free (SPEC §3.4).
//   - tabs under the board wall edges at the snap-leg positions: the frame legs snap under
//     them (frame.scad). The tabs also seat the boards in z.
//   - controller pocket on side 0 (code-0), per hardware/controller-board/LAYOUT-NOTES.md §4:
//     open from the floor through to the wall (parts face the wall; >= 2.8 mm everywhere and the
//     L1 window are both met, 8 mm of air under the board), so the jig and the joint iron reach
//     from behind. 45 deg ledges and 3 snap tongues sit only on the board's part-free edge
//     stretches; rim fingers carry the base margin and stop joint_iron short of the pad row.
//     The tongue lips hold the controller's chamber face (SPEC §3.5 "the back plate's snap fit
//     holds the board").
//   - underside recess and two sockets for the wall puck (wall_puck.scad); two access holes
//     for the puck screws, closed with the printed plugs afterwards.
//
//  Print: right side up (wall side on the bed), 15 % infill, >= 5 top layers for opacity.
//  Overhangs: the ledge underside is 45 deg; the tongue lips overhang 0.7 mm. No supports.
//  Export:  openscad.com -o stl/back_plate.stl -D "part=\"print\"" back_plate.scad
//           openscad.com -o stl/plug.stl       -D "part=\"plug\""  back_plate.scad
// =====================================================================
include <common.scad>

part = "print";      // print | assembly | plug

r_cut = Ab * cos(180 / n_sides) + (HL - corner_rel) * sin(180 / n_sides);   // corner chord distance
ledge_h = ledge_w + ctrl_clr;          // 45 deg ledge underside
y_mid = ctrl_gap + ctrl_depth / 2;

module plate_outline() intersection() {
    ngon(Ab);
    intersection_for (k = [0 : n_sides - 1])
        rotate(-90 + 180 / n_sides + k * 360 / n_sides) translate([r_cut - 400, -200]) square([400, 400]);
}

// Controller pocket (side 0): open from the chamber floor straight through to the wall.
// The base is pushed past the plate edge (open toward the code-0 board). This gives
// LAYOUT-NOTES §4's ">= 2.8 mm everywhere, open window under L1" with room to spare
// (the wall is z_wall below), and full wall-side access for the jig and the joint iron.
module pocket_cut() {
    translate([0, 0, z_pb - 1]) linear_extrude(z_floor - z_pb + 3) offset(delta = ctrl_clr) ctrl_2d(3);
}

// Support ledges, only inside the controller's part-free edge stretches (not on the base:
// the rim fingers carry the base margin). 45 deg underside, top at the controller underside.
module ctrl_ledges() {
    intersection() {
        difference() {
            translate([0, 0, z_ctrl_bot - ledge_h]) linear_extrude(ledge_h) offset(delta = ctrl_clr + eps) ctrl_2d(0);
            hull() {
                translate([0, 0, z_ctrl_bot - eps]) linear_extrude(2 * eps) offset(delta = -ledge_w) ctrl_2d(0);
                translate([0, 0, z_ctrl_bot - ledge_h - eps]) linear_extrude(eps) offset(delta = ctrl_clr) ctrl_2d(0);
            }
        }
        for (f = ctrl_free) if (f[0] != 0)
            translate([0, 0, z_ctrl_bot - ledge_h - 1]) linear_extrude(ledge_h + 2)
                ctrl_edge_strip(f[0], f[1] + 0.3, f[2] - 0.3, ctrl_clr + 1, ledge_w + 1);
    }
}

// Rim fingers under the base margin: inside the free base stretches and >= joint_iron beyond the pad row.
module ctrl_rim_fingers() {
    x_in = j4_halfw + joint_iron;
    for (f = ctrl_free) if (f[0] == 0) {
        x0 = max(-ctrl_base / 2 + f[1] + 0.3, f[1] < ctrl_base / 2 ? -1e3 : x_in);
        x1 = min(-ctrl_base / 2 + f[2] - 0.3, f[1] < ctrl_base / 2 ? -x_in : 1e3);
        if (x1 > x0 + 2) sbox(-x1, -x0, Ab - rim_c, Ab, z_pb, z_ctrl_bot);   // controller x -> global X = -x
    }
}

// Snap tongue frames: origin on the pocket wall, +v (local +Y) points away from the pocket.
module ctrl_hook_frames() {
    for (h = ctrl_hooks) at_ctrl_edge(h[0], h[1], ctrl_clr) children();
}

module hook_slots() {
    hw = hook_w / 2;
    translate([0, 0, hook_root]) linear_extrude(z_floor - hook_root + 2) {
        translate([-hw - hook_slot, hook_t]) square([hook_w + 2 * hook_slot, hook_slot]);
        for (s = [-1, 1]) translate([s > 0 ? hw : -hw - hook_slot, -1]) square([hook_slot, hook_t + 1 + eps]);
    }
}

module hook_lip() {
    hw = hook_w / 2;
    zt = z_floor + 0.25;
    translate([-hw, 0, 0]) rotate([90, 0, 90]) linear_extrude(hook_w) polygon([
        [hook_t, z_floor - 0.01], [0, z_floor - 0.01], [0, z_floor + 0.05], [-hook_over, z_floor + 0.05],
        [-hook_over, zt], [0, zt + hook_over], [hook_t, zt + hook_over]]);
}

module back_plate() {
    difference() {
        union() {
            difference() {
                translate([0, 0, z_pb]) linear_extrude(z_floor - z_pb) plate_outline();
                pocket_cut();
            }
            // controller supports: rim fingers under the base margin, ledges along the free edge stretches
            ctrl_rim_fingers();
            ctrl_ledges();
            // tabs under the board wall edges, where the frame legs snap
            all_sides() for (s = [-1, 1])
                sbox(s > 0 ? leg_x[0] + 0.4 : -leg_x[1] + 0.4, s > 0 ? leg_x[1] - 0.4 : -leg_x[0] - 0.4,
                     Ab - 1.0, tab_out, z_pb, 0);
            // snap-tongue lips over the controller's chamber face
            ctrl_hook_frames() hook_lip();
        }
        // free the snap tongues
        ctrl_hook_frames() hook_slots();
        // relief over the unused J4 pads on sides 1..n-1 (pre-tinned pads stand proud)
        on_sides([1 : n_sides - 1]) sbox(-j4_halfw - 0.8, j4_halfw + 0.8, Ab - j4_relief, Ab + 1, j4_z[0] - 0.5, z_floor + 1);
        // wall puck: recess, post sockets, screw access holes
        translate([-(puck_len / 2 + 0.5), puck_dy - (puck_w / 2 + 0.5), z_pb - 1]) cube([puck_len + 1, puck_w + 1, z_puck_top - z_pb + 1]);
        for (s = [-1, 1]) translate([s * post_x, puck_dy, 0]) {
            translate([0, 0, z_puck_top - eps]) cylinder(d = neck_d, h = neck_len + 2 * eps);
            translate([0, 0, z_puck_top + neck_len]) cylinder(d = barb_d + 0.8, h = z_floor - 1.2 - z_puck_top - neck_len);
            translate([s * (screw_x - post_x), 0, z_pb - 1]) cylinder(d = access_d, h = z_floor - z_pb + 2);
        }
    }
}

// Plug for the screw access holes (rests on the countersunk screw head, top flush with the floor).
module plug() cylinder(d = access_d - 0.15, h = z_floor - z_puck_top - 0.3);

if (part == "print") translate([0, 0, -z_pb]) back_plate();
else if (part == "assembly") back_plate();
else if (part == "plug") plug();
